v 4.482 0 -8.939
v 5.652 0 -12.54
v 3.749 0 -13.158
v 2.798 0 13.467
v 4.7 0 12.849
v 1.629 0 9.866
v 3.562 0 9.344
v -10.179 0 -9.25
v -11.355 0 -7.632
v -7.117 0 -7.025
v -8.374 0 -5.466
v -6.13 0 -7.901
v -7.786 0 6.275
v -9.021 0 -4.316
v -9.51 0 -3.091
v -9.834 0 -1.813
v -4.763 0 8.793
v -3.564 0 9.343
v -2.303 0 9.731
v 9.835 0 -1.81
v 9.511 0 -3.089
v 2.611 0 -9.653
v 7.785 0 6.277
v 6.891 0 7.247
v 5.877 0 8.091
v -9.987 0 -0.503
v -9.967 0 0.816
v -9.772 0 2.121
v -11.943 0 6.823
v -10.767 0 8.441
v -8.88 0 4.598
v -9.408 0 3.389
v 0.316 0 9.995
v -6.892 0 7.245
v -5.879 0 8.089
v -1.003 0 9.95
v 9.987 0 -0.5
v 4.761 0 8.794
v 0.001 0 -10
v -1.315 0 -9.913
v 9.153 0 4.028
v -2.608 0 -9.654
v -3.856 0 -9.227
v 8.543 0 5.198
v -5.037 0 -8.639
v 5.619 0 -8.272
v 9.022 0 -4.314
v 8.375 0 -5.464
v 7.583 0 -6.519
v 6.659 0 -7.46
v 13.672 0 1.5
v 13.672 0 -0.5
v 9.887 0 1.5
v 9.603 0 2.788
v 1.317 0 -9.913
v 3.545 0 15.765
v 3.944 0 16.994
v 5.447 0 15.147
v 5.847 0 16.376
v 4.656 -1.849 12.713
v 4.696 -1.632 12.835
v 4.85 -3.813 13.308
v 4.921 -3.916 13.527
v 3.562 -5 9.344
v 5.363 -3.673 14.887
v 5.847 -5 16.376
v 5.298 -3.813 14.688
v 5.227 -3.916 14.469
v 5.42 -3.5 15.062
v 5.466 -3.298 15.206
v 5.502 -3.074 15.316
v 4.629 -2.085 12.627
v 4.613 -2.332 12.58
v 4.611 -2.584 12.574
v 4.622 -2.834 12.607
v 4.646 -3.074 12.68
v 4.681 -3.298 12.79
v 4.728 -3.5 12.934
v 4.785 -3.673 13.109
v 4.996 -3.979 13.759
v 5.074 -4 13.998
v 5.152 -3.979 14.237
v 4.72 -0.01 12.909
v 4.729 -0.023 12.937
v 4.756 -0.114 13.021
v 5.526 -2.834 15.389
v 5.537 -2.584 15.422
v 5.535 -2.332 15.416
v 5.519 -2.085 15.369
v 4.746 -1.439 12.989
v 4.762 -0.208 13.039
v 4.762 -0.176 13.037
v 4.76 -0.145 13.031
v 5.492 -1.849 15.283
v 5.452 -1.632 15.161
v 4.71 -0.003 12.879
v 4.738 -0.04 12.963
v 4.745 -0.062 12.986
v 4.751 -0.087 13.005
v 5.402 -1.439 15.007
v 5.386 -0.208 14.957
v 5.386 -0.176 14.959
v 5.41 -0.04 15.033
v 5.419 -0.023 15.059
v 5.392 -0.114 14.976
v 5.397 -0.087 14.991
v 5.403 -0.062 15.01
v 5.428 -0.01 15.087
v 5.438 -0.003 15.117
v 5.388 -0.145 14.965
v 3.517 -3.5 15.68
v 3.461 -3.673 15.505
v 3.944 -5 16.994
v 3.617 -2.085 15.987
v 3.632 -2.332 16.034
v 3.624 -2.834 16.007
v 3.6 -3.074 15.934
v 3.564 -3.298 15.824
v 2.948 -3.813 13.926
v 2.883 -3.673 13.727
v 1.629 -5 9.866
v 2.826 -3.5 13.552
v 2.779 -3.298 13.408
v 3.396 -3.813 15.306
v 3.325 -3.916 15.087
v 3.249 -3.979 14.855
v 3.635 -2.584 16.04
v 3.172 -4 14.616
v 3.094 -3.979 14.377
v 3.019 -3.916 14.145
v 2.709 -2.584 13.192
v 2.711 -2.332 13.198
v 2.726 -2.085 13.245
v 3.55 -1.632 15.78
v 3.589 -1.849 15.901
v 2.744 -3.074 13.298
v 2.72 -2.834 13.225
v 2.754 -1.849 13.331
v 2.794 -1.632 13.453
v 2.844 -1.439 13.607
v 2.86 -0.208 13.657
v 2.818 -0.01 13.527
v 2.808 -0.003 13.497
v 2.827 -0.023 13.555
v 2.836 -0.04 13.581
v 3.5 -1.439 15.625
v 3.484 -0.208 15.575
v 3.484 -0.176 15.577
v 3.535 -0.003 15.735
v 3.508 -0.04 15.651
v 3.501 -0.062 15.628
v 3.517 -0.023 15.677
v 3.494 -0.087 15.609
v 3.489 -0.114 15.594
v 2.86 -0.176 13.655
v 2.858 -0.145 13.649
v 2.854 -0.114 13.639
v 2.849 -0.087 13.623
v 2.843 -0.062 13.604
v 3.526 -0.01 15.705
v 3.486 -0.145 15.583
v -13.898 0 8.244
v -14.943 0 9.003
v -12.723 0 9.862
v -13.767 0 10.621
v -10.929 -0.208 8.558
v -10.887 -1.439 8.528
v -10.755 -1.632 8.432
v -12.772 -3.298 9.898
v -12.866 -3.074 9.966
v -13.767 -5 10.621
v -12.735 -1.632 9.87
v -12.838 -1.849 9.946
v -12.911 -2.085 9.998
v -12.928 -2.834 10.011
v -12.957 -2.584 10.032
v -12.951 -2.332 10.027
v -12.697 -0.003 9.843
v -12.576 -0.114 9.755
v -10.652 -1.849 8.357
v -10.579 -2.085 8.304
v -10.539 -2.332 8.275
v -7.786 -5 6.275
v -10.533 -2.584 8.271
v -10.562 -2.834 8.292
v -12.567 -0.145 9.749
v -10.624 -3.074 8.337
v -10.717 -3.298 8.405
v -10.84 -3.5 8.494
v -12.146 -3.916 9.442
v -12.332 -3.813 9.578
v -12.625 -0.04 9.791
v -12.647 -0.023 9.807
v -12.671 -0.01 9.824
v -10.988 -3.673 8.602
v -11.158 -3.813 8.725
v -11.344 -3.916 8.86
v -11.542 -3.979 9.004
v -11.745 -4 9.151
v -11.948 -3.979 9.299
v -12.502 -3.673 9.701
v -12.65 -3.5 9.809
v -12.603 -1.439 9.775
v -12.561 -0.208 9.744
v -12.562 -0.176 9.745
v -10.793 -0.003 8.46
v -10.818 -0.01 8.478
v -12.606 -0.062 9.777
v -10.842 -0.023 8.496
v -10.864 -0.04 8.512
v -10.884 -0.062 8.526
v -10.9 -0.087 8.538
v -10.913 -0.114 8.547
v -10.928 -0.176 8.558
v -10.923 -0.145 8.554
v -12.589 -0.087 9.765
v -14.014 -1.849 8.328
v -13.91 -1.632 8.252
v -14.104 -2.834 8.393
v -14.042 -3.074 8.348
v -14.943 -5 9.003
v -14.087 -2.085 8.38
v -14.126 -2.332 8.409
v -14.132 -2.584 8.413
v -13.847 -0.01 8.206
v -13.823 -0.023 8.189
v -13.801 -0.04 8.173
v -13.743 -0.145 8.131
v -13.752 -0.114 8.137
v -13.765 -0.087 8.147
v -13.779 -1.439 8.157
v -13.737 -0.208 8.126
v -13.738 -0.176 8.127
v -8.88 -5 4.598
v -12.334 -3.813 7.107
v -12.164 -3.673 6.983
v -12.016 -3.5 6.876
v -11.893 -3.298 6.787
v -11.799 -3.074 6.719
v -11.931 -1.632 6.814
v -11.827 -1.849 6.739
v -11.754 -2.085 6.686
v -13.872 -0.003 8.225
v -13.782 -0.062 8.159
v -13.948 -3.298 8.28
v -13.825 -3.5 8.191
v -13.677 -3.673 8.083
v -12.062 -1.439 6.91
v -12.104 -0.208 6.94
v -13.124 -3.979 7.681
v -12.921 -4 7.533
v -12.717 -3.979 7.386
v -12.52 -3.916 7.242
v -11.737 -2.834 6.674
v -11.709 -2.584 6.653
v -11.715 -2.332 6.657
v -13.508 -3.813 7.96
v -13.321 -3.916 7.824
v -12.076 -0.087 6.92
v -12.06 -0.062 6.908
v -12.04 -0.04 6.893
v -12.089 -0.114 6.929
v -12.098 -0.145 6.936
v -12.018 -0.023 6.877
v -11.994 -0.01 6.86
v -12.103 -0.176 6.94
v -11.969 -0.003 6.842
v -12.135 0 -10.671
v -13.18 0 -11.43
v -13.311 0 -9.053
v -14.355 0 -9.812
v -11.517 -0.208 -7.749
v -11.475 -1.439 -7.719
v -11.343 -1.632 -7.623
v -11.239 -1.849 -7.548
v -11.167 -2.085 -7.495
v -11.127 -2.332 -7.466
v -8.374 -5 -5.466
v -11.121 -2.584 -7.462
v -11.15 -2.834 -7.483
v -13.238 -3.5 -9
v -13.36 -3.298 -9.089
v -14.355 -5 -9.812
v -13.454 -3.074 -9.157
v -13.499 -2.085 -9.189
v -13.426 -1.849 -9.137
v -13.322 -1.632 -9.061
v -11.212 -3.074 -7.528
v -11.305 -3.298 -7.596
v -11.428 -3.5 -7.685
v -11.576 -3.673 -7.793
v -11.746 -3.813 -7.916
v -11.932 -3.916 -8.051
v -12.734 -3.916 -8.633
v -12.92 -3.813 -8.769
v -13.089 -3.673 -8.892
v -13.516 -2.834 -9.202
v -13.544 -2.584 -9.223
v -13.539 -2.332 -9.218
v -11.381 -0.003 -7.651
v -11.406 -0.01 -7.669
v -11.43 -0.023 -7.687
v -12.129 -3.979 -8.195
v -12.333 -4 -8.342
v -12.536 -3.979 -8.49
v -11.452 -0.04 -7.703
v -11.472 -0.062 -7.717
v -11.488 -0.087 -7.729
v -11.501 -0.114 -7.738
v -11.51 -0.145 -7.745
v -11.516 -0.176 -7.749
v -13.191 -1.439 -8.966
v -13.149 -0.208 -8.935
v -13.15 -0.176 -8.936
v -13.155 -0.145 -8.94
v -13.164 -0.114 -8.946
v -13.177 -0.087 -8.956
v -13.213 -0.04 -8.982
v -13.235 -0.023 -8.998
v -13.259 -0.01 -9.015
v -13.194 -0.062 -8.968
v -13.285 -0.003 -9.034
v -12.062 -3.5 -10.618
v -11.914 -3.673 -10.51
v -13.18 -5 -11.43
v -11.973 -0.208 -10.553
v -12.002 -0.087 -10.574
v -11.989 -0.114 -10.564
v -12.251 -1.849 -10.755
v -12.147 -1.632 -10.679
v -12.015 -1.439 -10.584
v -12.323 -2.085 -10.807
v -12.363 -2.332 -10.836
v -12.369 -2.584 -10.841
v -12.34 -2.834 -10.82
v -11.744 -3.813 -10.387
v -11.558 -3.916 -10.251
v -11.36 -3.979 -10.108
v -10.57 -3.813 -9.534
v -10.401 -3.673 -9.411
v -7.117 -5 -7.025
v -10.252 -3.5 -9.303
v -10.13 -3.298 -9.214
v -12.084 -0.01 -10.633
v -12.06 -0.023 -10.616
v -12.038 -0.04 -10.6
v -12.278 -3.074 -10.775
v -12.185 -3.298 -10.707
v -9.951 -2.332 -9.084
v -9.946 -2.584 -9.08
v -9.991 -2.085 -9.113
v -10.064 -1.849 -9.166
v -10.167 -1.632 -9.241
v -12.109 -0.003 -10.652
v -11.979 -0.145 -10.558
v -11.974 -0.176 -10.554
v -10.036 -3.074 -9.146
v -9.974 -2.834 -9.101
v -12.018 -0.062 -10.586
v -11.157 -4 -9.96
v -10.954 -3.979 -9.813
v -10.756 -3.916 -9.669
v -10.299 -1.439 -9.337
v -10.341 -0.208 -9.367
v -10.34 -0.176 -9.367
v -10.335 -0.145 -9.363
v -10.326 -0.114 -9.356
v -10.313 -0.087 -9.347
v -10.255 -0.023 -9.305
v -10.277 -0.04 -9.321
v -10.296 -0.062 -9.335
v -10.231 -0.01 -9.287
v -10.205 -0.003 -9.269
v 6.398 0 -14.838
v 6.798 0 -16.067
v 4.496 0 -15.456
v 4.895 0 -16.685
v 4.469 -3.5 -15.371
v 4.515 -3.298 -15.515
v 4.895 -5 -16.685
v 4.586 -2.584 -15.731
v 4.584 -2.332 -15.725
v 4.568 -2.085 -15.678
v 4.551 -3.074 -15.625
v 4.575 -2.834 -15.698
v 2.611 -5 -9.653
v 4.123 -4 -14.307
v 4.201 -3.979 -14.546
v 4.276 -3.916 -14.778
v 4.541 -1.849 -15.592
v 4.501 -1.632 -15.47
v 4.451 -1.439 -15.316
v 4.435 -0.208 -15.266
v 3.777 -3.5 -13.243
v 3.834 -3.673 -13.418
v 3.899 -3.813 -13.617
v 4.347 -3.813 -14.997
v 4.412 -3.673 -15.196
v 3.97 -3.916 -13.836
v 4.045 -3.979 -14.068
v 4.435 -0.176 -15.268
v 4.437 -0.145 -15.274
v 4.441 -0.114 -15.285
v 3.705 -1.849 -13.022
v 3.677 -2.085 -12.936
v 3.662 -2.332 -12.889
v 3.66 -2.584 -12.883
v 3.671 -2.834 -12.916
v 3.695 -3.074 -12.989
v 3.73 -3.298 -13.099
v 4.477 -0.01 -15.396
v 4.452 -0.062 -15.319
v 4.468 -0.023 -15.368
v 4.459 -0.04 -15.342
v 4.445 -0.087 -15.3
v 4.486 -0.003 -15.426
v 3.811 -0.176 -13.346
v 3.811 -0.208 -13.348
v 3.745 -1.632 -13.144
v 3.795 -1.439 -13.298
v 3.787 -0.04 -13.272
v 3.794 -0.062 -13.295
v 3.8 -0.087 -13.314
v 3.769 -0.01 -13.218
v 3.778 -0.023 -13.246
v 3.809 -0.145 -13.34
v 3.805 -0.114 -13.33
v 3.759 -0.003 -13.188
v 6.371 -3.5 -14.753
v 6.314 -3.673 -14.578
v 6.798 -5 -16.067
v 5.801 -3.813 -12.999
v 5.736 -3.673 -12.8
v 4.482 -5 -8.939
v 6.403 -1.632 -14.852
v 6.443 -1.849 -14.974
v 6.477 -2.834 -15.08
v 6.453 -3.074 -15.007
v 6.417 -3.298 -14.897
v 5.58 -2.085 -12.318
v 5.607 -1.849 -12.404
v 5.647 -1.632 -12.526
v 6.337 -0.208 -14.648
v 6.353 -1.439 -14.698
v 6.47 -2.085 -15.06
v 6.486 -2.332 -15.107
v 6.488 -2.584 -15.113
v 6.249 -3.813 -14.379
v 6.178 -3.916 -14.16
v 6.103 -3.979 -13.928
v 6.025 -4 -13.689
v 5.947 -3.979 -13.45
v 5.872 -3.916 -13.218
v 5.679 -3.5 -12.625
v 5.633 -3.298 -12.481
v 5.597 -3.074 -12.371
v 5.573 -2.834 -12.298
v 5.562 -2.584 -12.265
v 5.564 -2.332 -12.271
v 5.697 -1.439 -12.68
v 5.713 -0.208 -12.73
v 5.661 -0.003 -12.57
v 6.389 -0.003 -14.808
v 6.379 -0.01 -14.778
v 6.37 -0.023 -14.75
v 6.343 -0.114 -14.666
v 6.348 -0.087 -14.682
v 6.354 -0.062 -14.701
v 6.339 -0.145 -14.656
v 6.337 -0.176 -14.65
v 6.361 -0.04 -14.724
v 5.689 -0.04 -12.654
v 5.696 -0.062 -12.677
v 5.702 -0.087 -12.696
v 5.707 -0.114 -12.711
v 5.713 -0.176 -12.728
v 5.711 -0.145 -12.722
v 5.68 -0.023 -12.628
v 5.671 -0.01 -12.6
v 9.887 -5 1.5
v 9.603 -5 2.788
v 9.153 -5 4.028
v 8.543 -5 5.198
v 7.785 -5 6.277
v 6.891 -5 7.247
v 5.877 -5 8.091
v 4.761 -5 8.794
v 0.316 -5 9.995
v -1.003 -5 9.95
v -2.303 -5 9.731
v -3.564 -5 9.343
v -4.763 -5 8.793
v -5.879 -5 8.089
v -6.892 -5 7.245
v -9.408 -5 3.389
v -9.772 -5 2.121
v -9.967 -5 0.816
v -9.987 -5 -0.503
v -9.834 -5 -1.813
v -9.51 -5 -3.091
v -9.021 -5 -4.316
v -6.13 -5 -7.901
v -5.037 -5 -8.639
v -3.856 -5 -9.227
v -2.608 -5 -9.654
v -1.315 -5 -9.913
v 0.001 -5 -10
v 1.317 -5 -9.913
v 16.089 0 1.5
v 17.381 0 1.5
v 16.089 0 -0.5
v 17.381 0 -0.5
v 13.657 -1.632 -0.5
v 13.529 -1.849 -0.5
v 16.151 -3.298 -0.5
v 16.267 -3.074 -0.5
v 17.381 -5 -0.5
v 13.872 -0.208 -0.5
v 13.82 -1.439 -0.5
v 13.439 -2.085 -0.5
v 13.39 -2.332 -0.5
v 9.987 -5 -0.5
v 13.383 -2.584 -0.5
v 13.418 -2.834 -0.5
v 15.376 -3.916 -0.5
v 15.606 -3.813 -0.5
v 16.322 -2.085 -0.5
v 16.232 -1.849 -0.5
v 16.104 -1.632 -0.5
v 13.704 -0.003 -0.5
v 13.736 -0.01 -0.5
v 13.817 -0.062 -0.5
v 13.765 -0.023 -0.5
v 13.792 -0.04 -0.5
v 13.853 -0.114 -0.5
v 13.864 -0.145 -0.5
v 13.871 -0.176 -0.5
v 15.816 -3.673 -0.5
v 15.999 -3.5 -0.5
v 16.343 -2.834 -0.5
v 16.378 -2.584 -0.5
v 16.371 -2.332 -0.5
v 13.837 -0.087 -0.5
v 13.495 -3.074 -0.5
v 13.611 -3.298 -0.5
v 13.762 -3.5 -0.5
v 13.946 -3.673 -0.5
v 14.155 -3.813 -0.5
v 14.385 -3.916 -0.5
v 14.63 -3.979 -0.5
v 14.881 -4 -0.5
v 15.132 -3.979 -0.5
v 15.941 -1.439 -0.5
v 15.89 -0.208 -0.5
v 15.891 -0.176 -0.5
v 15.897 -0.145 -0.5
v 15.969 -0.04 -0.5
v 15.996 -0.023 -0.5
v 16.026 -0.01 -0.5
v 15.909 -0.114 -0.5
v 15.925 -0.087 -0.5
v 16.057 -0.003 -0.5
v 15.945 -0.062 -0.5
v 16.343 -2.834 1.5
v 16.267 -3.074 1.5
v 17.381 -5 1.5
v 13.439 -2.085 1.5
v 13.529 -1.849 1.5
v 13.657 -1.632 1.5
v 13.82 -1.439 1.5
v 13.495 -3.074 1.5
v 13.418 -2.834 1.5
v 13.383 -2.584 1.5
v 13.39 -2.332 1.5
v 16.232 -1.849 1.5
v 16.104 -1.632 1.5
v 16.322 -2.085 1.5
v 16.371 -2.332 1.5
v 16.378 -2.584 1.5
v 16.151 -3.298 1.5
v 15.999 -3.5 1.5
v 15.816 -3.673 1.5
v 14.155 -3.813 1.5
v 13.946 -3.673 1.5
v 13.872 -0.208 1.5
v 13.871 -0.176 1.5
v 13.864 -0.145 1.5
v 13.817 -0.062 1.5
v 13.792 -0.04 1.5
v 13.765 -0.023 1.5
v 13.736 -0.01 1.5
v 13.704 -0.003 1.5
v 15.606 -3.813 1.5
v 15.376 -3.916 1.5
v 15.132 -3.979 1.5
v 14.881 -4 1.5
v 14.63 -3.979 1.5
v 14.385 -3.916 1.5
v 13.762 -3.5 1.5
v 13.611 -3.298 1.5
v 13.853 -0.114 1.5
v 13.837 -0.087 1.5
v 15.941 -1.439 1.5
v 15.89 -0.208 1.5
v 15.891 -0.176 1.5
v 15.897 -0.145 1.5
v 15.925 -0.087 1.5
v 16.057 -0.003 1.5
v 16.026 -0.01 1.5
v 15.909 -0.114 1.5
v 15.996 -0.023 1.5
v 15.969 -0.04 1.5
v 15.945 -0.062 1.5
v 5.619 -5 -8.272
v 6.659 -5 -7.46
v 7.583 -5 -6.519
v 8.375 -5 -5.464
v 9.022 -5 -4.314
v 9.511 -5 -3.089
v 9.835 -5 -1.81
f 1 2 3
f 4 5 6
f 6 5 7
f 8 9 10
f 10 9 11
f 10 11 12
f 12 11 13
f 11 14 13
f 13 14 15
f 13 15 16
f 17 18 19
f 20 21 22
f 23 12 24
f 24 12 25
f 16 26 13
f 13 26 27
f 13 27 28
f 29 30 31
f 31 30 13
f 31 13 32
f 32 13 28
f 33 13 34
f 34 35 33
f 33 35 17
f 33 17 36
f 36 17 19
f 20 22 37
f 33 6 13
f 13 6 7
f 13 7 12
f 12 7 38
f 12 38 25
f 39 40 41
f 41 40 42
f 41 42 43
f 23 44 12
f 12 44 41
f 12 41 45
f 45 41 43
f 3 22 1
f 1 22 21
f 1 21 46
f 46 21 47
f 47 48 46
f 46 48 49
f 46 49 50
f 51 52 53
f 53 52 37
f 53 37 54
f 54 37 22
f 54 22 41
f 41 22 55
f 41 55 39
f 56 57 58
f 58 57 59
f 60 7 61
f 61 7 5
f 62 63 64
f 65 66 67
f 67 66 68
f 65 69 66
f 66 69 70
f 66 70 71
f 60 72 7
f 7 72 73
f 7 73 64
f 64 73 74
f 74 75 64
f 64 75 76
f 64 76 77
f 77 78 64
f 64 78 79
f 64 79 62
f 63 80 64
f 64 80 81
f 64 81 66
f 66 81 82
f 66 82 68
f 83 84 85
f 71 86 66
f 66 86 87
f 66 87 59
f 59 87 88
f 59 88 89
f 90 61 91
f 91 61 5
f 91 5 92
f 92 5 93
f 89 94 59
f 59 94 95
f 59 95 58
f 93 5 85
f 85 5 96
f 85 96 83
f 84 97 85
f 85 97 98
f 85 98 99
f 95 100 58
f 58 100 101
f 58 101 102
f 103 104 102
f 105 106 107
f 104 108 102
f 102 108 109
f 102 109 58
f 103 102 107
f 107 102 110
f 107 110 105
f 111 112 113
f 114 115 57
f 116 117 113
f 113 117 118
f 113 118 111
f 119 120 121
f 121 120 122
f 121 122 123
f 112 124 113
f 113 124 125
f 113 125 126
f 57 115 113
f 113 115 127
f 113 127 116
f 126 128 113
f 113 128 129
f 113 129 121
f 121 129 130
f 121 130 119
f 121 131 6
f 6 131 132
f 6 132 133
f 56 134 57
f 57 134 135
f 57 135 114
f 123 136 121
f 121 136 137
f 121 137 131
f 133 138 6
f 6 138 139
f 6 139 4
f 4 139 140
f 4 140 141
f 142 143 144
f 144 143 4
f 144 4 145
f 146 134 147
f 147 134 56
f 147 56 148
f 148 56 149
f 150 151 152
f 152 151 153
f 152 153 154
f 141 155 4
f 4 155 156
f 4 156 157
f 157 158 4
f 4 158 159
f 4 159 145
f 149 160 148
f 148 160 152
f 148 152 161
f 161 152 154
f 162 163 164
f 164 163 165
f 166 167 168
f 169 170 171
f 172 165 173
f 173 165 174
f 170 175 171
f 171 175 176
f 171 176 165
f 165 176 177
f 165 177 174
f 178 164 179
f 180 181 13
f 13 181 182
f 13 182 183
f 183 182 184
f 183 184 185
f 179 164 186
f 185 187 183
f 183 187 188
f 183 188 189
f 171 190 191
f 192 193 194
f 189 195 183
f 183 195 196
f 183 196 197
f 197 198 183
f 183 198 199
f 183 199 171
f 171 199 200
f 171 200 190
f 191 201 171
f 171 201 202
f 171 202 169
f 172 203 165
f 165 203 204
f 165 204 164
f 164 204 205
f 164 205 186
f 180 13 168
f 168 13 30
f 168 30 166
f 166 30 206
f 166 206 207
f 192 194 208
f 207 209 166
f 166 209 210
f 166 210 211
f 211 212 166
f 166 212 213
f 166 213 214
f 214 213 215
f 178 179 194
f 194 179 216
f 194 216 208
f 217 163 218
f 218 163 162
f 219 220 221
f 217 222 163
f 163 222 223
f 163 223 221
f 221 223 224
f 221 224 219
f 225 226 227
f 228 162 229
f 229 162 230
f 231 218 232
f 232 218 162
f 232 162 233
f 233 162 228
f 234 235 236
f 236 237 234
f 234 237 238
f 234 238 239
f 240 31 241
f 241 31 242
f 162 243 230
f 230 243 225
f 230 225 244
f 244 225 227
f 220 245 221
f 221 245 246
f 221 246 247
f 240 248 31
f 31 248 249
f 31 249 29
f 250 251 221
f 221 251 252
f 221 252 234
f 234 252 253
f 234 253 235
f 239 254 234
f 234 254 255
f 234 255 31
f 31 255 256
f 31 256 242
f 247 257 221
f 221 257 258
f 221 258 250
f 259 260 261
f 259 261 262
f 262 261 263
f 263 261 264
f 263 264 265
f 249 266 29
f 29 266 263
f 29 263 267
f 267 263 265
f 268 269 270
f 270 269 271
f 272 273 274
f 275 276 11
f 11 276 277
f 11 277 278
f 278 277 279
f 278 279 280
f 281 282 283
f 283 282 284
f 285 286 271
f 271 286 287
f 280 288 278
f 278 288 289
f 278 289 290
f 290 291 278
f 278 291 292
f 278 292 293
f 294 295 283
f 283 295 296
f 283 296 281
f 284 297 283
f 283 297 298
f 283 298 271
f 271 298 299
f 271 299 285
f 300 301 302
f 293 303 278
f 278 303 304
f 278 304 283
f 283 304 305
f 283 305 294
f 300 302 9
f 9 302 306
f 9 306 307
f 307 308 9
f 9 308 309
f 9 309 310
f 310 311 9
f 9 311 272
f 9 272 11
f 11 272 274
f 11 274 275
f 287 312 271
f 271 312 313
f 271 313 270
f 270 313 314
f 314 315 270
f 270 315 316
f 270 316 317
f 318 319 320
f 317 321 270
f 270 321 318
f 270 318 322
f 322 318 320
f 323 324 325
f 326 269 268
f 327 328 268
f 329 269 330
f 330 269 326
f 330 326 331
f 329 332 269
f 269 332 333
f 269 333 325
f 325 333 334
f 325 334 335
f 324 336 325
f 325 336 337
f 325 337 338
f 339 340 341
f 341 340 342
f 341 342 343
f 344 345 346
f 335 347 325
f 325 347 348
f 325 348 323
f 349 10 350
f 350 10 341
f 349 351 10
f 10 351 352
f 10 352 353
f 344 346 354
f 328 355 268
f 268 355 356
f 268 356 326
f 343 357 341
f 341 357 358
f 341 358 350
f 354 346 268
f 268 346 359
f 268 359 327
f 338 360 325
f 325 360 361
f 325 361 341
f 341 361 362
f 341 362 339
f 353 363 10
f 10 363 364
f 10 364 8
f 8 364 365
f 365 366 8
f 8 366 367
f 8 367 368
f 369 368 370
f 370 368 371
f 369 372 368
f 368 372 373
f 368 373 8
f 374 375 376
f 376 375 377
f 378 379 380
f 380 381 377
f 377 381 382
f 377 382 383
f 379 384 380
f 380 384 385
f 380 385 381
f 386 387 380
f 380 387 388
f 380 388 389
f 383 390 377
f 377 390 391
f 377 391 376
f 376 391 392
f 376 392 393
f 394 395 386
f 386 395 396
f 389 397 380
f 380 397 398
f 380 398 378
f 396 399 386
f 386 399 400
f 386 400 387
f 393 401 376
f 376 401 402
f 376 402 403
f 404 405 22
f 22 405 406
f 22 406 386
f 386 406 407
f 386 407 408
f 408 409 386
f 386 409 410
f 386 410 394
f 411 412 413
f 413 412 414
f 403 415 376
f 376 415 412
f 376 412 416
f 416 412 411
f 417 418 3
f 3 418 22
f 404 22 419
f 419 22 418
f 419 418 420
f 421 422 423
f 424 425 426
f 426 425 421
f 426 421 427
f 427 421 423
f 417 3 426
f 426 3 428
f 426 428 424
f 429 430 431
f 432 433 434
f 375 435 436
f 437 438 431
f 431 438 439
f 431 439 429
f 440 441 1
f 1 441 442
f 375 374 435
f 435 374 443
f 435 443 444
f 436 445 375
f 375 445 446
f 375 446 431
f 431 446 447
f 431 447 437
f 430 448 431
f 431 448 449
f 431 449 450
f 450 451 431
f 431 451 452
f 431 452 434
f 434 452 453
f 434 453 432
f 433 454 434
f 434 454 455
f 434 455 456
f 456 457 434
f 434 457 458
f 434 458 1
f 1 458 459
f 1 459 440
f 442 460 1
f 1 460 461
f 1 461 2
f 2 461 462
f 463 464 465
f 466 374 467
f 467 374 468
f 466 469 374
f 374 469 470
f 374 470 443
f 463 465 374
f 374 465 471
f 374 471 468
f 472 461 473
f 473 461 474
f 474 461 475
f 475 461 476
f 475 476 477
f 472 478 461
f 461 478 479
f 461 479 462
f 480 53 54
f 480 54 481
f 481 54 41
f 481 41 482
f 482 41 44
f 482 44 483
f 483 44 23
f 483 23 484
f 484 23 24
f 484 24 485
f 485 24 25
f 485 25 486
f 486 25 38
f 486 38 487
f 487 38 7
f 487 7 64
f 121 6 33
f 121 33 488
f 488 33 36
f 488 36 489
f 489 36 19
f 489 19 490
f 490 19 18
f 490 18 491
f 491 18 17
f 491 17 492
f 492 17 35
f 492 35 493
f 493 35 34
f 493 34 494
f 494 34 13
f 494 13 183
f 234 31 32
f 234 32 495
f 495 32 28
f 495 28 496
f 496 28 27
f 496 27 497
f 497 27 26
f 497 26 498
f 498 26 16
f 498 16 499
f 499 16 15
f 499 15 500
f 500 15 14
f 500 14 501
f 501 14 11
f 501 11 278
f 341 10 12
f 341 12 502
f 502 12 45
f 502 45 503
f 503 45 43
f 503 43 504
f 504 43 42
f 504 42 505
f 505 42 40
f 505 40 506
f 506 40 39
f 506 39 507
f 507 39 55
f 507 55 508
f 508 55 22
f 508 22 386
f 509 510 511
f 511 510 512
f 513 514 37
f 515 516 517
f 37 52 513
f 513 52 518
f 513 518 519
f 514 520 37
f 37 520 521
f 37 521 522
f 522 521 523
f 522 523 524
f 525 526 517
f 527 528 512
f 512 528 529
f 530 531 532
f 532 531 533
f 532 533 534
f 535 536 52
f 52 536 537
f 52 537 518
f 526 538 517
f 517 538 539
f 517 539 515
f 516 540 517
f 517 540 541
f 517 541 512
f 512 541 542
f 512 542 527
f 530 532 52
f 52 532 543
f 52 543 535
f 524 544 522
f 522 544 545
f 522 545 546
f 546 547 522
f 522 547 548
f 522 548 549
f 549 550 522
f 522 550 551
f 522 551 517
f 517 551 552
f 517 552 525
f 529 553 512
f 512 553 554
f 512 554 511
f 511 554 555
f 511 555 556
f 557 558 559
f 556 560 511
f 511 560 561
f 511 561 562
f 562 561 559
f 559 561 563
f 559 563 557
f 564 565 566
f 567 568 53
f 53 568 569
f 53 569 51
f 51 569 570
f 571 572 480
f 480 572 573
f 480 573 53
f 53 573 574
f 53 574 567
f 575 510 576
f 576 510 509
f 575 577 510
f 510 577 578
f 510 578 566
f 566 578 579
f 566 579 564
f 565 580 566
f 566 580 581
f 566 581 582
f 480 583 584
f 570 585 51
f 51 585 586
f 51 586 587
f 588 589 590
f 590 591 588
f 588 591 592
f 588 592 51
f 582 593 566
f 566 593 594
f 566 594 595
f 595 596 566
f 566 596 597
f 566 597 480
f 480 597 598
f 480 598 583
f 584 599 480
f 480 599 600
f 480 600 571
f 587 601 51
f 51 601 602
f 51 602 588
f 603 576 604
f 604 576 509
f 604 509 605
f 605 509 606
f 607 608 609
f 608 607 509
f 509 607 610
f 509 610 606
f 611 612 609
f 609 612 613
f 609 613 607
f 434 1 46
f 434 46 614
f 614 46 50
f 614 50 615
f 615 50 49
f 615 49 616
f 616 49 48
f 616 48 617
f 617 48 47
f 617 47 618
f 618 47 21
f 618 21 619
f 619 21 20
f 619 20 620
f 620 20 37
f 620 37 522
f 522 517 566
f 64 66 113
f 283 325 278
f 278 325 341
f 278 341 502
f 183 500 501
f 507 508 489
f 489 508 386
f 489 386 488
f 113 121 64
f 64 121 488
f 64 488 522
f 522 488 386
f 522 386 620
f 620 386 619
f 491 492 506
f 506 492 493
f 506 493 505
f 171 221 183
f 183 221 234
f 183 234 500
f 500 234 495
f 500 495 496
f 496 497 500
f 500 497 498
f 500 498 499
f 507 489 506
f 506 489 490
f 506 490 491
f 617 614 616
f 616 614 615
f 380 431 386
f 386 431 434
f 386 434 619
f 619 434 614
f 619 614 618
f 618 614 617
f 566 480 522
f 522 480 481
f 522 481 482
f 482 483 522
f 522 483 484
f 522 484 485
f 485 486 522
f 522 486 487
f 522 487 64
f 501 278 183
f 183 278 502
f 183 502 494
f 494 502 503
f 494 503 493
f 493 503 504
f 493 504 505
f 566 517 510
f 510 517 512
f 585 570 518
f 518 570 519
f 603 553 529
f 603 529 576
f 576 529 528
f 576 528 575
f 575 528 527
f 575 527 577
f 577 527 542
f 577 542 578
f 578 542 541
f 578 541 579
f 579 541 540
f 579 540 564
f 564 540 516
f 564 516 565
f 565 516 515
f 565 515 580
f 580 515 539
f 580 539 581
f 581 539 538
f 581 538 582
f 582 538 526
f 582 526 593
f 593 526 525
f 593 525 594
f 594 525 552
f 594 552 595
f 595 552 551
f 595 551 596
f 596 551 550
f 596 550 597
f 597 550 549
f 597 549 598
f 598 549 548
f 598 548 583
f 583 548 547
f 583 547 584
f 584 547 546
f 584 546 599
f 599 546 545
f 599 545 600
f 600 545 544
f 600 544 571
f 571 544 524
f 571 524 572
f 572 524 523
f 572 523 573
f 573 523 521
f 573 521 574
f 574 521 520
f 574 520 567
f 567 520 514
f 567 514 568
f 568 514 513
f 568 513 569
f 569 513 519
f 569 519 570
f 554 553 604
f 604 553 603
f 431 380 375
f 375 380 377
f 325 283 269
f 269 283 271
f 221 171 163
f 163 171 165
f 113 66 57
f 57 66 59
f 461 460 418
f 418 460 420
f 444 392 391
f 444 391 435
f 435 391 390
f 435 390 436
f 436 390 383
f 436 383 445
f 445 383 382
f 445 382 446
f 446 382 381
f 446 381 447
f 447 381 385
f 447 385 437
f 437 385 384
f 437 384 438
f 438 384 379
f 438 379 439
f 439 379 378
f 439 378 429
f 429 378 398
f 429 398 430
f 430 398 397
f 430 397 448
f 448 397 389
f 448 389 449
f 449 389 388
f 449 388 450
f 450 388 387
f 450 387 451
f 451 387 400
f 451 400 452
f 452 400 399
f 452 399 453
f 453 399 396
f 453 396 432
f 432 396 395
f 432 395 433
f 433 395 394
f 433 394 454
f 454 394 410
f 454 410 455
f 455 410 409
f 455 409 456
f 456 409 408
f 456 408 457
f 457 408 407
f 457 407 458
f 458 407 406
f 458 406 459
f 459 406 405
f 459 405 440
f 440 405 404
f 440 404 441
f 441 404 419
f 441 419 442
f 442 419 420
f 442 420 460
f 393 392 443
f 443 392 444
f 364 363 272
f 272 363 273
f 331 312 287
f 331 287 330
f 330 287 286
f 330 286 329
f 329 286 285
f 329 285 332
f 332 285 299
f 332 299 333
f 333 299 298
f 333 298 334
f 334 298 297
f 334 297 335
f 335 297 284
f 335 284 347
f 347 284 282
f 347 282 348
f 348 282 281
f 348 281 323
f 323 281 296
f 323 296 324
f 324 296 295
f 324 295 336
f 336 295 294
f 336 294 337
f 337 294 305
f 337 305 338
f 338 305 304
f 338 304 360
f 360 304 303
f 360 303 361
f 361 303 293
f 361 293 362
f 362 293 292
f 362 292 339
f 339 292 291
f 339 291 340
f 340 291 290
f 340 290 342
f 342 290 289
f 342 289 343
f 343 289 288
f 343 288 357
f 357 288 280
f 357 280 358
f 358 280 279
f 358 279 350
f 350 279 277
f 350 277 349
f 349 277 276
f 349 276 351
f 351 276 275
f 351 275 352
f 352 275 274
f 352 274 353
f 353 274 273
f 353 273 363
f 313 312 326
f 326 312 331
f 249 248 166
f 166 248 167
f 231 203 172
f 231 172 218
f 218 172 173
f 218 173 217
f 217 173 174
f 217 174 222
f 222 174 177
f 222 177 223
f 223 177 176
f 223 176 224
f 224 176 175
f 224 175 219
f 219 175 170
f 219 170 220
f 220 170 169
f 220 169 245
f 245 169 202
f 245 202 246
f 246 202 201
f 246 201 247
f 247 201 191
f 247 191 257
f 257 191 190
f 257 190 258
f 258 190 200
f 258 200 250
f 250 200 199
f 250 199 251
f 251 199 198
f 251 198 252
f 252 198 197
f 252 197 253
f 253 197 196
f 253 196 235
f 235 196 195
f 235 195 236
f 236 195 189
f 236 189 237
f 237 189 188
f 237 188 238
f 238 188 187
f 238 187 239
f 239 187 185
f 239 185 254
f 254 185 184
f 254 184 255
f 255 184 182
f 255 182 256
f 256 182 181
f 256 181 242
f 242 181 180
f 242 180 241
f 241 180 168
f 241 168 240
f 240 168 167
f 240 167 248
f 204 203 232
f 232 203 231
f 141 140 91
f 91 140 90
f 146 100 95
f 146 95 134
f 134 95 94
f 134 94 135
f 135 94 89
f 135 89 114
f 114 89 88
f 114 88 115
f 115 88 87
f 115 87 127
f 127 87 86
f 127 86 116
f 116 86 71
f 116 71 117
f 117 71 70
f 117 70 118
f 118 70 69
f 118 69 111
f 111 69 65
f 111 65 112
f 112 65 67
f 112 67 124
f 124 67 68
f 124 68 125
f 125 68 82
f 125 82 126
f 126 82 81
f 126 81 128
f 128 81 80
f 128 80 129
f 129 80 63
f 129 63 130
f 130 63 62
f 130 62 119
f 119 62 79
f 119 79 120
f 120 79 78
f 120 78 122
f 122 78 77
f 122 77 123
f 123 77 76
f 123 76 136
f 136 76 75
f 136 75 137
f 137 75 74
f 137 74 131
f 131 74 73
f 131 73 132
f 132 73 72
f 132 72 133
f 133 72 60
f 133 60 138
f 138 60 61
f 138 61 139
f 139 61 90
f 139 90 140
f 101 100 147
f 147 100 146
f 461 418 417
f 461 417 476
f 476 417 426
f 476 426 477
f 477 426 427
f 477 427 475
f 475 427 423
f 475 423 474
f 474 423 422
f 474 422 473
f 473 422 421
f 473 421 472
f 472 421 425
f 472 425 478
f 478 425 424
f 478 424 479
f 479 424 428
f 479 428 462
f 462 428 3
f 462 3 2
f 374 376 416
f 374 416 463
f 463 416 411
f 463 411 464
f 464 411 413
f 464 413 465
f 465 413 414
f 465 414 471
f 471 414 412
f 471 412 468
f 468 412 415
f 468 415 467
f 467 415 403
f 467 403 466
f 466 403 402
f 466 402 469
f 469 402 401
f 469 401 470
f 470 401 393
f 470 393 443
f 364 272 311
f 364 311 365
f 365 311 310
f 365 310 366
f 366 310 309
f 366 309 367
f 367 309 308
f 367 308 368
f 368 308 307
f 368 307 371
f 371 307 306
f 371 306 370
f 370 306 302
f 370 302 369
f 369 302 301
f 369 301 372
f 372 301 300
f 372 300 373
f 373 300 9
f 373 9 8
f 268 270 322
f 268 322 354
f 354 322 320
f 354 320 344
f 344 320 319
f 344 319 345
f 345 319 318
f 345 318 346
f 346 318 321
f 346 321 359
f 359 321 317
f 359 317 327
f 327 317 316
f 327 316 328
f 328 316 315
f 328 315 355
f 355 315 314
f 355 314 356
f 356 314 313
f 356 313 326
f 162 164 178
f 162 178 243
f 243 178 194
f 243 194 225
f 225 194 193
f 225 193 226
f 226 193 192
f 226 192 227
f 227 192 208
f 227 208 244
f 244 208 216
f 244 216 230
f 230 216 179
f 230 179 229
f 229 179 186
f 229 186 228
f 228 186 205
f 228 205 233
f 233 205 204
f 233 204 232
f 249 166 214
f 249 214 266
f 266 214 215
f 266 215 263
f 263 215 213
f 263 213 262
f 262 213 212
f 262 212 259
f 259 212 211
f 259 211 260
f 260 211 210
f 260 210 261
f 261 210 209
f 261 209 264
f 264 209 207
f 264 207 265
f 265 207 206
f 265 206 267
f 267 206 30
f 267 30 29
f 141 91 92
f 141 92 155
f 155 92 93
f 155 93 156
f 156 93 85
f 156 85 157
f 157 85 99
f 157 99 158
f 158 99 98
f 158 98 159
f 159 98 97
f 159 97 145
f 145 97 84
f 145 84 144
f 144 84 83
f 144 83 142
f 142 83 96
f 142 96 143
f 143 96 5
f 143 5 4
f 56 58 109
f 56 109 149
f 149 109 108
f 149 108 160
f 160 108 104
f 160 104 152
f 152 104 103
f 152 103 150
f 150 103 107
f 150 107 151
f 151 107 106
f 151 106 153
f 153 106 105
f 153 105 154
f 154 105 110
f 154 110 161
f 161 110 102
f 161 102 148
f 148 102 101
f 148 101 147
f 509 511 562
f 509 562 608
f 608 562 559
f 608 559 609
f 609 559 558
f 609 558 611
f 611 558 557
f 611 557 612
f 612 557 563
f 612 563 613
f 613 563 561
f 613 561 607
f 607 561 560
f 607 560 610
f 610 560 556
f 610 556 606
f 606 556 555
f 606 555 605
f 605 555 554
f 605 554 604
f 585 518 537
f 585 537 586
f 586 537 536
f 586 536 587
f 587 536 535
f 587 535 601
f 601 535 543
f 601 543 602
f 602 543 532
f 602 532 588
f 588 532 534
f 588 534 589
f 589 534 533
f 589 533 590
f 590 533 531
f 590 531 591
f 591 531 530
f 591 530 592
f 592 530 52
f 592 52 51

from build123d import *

# Parameters (mm, degrees)
ESQUISSE1_R               = 10
BASE_DEPTH                = 5
BOSS_BALEINE_DEPTH        = 5
VIDE_BALEINE_DEPTH        = 3
REP_SUPPORT_BALEINE_COUNT = 5
CONGE_BALEINE_R           = 0.2


with BuildPart() as part:
    # Esquisse1 → BASE (new body)
    with BuildSketch(Plane(origin=(0, 0, 0), x_dir=(1, 0, 0), z_dir=(0, 1, 0))):
        with Locations(Location((0, 0, 0), (0, 0, 270))):
            Circle(ESQUISSE1_R)
    extrude(amount=-BASE_DEPTH)

    # Esquisse2 → BOSS - BALEINE (add)
    with BuildSketch(Plane(origin=(0, 0, 0), x_dir=(1, 0, 0), z_dir=(0, 1, 0))):
        with BuildLine():
            ThreePointArc((9.38083152, -1.5), (9.486684928, -0.502801231), (9.486832981, 0.5))
            Line((9.486832981, 0.5), (17.38083152, 0.5))
            Line((17.38083152, 0.5), (17.38083152, -1.5))
            Line((17.38083152, -1.5), (9.38083152, -1.5))
        make_face()
    boss_baleine = extrude(amount=-BOSS_BALEINE_DEPTH)

    # Esquisse3 → VIDE - BALEINE (cut)
    with BuildSketch(Plane.XY.offset(1.5)):
        with BuildLine():
            Line((13.88083152, 0), (13.820171348, -1.439339828))
            ThreePointArc((13.820171348, -1.439339828), (14.88083152, -4), (15.941491691, -1.439339828))
            Line((15.941491691, -1.439339828), (15.88083152, 0))
            Line((15.88083152, 0), (13.88083152, 0))
        make_face()
    vide_baleine = extrude(amount=-VIDE_BALEINE_DEPTH, mode=Mode.SUBTRACT)

    # REP - SUPPORT BALEINE: BOSS - BALEINE, VIDE - BALEINE ×5 about axis
    rep_support_baleine_axis = Axis((0, 0, 0), (0, 1, 0))
    add([boss_baleine.rotate(rep_support_baleine_axis, i * 360 / REP_SUPPORT_BALEINE_COUNT) for i in range(1, REP_SUPPORT_BALEINE_COUNT)])
    add([vide_baleine.rotate(rep_support_baleine_axis, i * 360 / REP_SUPPORT_BALEINE_COUNT) for i in range(1, REP_SUPPORT_BALEINE_COUNT)], mode=Mode.SUBTRACT)

    # CONGE BALEINE
    conge_baleine_edges = [part.edges().sort_by_distance(p)[0] for p in [
        (4.764941094, 0, -13.046946771),
        (5.382975083, 0, -14.949059804),
        (-10.935935969, 0, -8.563456554),
        (-12.553969958, 0, -9.739027059),
        (-11.523721222, 0, 7.75443956),
        (-13.14175521, 0, 8.930010064),
        (3.813884577, 0, 13.355963766),
        (4.431918566, 0, 15.258076798),
        (13.88083152, 0, 0.5),
        (15.88083152, 0, 0.5),
    ]]
    fillet(conge_baleine_edges, radius=CONGE_BALEINE_R)


solid = part.part
